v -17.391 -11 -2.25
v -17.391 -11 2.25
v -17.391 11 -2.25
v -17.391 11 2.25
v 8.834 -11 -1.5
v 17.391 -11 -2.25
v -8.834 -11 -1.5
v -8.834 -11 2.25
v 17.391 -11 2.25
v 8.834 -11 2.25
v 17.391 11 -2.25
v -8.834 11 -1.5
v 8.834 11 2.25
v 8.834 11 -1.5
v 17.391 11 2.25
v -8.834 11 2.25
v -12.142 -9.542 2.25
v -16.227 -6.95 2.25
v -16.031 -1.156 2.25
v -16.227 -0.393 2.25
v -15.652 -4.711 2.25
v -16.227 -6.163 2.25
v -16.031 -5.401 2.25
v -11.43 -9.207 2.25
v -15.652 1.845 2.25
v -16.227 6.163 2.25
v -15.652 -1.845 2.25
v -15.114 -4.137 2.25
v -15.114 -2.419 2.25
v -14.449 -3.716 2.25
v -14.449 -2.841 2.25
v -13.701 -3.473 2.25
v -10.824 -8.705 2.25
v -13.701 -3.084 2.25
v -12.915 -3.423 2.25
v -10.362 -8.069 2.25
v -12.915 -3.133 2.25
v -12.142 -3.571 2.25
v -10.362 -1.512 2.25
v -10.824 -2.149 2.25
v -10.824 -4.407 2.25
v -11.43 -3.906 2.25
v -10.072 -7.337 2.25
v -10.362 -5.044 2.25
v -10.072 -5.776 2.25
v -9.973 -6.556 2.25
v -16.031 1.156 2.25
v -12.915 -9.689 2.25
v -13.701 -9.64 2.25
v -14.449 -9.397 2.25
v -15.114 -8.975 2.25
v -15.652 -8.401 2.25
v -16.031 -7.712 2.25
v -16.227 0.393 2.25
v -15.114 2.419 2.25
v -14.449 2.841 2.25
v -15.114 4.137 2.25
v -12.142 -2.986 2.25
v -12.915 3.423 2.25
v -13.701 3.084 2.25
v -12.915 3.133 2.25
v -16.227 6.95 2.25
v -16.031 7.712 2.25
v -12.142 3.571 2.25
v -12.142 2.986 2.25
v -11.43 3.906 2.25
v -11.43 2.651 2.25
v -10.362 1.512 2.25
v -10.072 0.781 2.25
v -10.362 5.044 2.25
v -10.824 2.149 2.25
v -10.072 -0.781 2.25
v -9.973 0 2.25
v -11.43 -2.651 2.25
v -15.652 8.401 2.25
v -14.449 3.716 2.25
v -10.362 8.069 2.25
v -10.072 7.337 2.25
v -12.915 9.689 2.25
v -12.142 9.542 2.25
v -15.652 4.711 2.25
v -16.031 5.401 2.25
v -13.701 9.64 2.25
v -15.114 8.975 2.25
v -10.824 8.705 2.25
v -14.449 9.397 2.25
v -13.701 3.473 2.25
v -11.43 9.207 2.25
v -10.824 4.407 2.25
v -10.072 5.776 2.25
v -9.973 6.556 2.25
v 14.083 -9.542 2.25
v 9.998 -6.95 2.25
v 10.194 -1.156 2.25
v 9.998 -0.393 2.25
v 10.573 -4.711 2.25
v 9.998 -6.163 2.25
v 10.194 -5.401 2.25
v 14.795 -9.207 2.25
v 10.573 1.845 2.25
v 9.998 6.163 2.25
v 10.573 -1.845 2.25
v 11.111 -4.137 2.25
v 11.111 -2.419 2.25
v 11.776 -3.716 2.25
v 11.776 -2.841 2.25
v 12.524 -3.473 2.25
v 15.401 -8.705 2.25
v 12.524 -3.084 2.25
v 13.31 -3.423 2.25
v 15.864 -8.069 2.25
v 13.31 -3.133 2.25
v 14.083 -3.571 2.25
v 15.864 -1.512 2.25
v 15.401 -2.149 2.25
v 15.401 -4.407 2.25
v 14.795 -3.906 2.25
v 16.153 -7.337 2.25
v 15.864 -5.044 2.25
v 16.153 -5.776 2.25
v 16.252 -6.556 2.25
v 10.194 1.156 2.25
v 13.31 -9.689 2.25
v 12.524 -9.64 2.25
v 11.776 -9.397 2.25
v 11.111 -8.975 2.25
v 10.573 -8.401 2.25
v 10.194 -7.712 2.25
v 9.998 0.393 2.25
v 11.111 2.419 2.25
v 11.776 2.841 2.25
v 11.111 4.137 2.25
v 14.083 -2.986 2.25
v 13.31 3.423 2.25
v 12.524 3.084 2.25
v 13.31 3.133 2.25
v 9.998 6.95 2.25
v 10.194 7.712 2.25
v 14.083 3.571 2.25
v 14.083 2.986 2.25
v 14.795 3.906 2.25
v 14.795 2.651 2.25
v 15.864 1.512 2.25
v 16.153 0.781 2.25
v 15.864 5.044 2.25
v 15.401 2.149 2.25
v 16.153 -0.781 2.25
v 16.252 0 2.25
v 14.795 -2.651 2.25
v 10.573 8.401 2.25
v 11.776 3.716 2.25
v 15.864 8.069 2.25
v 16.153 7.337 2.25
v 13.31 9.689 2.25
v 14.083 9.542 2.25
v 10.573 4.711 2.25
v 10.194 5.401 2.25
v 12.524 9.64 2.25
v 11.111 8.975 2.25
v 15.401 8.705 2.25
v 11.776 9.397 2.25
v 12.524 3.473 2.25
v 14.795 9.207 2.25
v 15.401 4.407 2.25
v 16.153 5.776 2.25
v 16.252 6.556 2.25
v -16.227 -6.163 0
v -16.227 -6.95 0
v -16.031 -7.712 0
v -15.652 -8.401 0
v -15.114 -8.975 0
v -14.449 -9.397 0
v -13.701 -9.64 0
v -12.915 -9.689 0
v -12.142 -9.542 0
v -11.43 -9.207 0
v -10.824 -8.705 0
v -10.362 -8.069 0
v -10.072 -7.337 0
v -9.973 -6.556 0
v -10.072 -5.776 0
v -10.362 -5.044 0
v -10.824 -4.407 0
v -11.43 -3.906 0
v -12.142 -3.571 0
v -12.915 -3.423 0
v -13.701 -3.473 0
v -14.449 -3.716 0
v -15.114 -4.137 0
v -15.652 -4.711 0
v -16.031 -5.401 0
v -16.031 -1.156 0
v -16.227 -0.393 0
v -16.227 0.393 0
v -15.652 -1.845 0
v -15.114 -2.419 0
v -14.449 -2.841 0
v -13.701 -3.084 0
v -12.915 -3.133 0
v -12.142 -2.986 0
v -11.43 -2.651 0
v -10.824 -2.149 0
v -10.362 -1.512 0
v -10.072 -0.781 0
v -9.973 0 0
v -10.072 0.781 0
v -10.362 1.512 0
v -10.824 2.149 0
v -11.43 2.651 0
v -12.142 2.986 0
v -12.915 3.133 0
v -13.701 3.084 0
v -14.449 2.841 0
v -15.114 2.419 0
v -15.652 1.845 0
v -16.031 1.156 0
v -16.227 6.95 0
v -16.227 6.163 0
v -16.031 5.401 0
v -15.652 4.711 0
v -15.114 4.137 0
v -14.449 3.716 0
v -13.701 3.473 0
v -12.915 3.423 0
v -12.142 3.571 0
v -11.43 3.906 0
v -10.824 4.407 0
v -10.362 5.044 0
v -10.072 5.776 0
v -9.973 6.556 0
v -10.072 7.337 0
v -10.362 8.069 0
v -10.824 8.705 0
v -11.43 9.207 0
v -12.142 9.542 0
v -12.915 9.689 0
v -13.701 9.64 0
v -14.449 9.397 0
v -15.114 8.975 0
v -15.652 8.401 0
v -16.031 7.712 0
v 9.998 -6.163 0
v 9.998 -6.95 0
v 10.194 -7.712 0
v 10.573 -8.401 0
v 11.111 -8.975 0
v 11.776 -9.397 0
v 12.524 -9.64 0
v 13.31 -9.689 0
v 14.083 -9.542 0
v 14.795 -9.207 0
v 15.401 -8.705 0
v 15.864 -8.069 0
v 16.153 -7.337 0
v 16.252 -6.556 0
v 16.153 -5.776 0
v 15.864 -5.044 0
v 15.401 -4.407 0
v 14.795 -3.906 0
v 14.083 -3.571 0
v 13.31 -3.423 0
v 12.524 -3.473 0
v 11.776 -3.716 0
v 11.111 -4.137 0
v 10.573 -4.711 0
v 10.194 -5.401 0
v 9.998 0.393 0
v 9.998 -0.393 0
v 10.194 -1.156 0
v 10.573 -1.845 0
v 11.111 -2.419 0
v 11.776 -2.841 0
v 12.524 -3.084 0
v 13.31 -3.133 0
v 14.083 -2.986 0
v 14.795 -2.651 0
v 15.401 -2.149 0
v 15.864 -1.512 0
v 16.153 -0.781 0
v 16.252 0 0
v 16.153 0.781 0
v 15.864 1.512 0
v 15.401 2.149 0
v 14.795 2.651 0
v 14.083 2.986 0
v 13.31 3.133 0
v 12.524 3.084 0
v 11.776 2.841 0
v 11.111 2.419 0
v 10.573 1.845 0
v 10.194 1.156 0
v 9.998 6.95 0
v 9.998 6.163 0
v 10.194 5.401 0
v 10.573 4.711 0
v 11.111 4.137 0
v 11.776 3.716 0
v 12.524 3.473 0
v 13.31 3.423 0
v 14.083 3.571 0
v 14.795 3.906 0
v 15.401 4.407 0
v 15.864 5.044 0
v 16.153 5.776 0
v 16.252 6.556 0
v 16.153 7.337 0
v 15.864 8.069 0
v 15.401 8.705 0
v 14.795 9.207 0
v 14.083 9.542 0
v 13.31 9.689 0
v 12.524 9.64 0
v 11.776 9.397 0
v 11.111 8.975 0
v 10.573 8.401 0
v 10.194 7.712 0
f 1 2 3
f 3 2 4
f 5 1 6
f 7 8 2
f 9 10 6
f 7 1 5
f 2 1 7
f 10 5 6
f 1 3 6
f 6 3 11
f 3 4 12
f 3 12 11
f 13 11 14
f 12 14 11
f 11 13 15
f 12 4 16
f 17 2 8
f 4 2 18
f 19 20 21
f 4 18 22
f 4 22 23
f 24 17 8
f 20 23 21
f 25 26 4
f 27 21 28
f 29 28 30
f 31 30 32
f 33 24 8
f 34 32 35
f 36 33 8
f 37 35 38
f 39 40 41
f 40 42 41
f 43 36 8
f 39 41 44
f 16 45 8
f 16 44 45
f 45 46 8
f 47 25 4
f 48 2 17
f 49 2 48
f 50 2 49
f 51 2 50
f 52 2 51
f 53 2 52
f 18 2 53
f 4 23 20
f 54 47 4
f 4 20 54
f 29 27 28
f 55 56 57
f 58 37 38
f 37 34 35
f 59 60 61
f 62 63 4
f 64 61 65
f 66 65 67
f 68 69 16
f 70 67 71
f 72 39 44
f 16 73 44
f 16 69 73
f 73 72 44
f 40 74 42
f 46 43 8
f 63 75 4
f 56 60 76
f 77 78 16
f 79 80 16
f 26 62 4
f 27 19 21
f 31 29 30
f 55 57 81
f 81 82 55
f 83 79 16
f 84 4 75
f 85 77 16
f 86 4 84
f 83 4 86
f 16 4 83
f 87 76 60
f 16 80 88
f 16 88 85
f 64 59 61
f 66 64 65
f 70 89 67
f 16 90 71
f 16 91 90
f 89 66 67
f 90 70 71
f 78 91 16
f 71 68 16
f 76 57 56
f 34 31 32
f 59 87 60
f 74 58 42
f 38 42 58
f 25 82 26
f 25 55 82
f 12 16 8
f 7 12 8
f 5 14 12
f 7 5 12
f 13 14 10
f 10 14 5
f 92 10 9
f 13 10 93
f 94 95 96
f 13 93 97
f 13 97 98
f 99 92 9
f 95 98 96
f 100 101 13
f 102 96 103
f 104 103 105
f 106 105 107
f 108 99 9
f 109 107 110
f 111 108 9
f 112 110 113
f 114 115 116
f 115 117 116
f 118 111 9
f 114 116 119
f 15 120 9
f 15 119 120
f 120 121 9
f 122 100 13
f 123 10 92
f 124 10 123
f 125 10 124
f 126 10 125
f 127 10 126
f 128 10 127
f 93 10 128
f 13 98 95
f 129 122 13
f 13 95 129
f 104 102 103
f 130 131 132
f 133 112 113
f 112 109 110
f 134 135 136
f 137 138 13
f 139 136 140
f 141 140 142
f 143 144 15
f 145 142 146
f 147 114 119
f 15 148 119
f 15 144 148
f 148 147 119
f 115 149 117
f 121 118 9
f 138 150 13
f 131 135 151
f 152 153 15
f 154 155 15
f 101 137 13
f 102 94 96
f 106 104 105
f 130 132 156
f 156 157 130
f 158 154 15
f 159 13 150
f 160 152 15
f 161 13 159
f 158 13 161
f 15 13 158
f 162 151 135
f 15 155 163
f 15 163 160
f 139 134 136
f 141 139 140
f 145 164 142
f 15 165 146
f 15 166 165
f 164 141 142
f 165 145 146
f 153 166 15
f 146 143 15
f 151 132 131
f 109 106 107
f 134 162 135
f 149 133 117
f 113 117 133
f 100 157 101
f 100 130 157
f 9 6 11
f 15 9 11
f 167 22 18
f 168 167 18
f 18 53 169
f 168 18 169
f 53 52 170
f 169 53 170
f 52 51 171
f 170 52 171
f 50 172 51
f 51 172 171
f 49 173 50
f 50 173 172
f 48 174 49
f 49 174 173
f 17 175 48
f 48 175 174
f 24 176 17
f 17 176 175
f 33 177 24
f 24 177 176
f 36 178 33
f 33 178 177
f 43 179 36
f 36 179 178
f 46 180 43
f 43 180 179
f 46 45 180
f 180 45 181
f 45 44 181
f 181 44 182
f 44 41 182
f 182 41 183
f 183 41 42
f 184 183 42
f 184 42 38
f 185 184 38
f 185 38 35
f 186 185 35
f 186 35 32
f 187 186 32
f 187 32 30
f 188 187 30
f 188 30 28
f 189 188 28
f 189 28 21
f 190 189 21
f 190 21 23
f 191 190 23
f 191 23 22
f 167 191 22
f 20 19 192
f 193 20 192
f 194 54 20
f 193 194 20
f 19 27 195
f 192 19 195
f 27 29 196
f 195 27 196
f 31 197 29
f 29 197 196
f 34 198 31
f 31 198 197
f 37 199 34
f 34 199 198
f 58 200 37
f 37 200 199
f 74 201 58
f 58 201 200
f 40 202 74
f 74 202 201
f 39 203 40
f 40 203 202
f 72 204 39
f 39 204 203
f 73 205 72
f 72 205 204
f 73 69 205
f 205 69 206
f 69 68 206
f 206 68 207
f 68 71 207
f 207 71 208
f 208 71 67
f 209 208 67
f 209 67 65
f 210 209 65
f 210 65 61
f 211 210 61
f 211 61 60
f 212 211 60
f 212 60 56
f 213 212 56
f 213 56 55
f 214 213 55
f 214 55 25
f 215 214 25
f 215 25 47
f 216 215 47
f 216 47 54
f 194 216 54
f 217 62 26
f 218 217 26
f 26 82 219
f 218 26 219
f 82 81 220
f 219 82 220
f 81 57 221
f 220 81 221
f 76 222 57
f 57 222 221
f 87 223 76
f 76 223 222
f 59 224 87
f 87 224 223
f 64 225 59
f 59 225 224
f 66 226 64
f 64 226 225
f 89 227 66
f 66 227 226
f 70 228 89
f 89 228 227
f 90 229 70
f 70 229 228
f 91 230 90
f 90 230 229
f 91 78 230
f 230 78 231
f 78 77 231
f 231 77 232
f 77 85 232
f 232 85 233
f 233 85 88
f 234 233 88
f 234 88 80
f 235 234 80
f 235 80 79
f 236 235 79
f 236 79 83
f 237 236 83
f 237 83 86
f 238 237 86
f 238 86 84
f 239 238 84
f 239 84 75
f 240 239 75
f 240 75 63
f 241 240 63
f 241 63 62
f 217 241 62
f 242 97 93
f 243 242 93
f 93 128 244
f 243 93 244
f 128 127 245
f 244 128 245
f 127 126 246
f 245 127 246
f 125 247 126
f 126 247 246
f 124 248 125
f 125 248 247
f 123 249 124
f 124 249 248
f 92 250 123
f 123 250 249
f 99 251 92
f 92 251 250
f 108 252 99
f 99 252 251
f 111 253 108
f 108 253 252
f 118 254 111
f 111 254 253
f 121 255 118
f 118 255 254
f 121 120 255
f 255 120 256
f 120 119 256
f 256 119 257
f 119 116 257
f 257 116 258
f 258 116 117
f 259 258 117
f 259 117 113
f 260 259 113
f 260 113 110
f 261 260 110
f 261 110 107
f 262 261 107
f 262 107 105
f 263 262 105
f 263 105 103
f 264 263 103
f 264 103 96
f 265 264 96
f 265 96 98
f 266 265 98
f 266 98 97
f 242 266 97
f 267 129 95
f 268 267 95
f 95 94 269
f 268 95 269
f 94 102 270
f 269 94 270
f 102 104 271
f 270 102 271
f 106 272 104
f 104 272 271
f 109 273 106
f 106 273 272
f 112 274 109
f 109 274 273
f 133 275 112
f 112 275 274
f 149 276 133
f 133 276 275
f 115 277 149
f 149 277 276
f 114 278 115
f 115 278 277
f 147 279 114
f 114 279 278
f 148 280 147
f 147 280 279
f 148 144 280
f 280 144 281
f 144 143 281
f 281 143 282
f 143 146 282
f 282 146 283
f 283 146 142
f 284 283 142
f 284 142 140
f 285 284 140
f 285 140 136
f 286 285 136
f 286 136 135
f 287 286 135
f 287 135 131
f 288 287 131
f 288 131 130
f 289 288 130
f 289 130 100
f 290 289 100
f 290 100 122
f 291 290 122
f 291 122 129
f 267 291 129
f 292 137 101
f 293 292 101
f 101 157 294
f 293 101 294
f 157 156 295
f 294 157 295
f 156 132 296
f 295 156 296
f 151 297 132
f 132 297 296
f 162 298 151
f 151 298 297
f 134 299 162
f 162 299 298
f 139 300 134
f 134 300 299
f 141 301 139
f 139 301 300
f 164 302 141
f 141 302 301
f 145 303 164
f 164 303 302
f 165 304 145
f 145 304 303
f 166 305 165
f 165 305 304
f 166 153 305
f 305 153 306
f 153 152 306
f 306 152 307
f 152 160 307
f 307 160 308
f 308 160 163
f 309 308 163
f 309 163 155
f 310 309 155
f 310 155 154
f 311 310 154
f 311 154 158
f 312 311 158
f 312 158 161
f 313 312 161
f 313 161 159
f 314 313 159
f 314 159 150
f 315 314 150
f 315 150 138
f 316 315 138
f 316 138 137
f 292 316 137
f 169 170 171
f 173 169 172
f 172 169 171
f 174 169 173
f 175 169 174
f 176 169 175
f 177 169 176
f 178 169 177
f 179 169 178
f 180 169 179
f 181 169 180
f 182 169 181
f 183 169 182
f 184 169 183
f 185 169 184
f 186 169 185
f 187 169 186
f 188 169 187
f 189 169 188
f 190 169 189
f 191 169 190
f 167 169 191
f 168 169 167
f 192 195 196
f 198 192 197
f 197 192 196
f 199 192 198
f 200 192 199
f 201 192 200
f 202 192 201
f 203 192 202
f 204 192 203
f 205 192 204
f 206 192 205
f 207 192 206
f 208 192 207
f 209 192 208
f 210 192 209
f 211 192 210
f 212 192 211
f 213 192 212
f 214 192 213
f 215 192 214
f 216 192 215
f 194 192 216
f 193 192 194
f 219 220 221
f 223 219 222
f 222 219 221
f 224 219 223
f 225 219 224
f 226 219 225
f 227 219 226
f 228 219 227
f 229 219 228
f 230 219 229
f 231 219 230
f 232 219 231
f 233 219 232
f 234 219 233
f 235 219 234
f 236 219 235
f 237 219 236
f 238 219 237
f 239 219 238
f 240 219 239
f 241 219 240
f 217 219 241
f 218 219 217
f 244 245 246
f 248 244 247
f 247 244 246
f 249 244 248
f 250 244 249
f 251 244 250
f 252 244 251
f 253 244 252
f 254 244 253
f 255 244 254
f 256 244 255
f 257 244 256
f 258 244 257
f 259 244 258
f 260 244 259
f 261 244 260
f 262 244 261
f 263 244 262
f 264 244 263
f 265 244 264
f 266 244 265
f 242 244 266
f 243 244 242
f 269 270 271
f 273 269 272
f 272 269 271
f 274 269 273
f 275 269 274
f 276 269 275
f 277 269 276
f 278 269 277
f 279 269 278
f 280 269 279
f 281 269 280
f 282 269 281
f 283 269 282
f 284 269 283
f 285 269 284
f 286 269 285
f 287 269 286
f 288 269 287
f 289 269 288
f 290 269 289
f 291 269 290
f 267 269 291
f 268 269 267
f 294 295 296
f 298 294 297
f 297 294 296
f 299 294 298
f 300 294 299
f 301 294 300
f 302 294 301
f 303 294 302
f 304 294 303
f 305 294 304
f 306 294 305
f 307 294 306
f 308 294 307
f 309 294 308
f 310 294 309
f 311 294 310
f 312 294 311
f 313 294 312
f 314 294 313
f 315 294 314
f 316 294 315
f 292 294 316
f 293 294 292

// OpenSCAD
//To compensate for shrinkage
printer_multiplier = 1.13;

mm_per_in     = 25.4;
hole_diameter = 7/32 * mm_per_in;
hole_depth    = 3;
between_holes = 1.0;
slot_width    = 1.5;
C             = hole_diameter + between_holes;


//A magnetic module end needs two circle holes; enlarge the holes by
// the printer_multiplier factor.
module mag_end()
{
	translate([0, 0, 0])
		cylinder(d=hole_diameter * printer_multiplier, h=hole_depth, $fn=25);
	translate([0, -C, 0])
		cylinder(d=hole_diameter * printer_multiplier, h=hole_depth, $fn=25);
	translate([0, C, 0])
		cylinder(d=hole_diameter * printer_multiplier, h=hole_depth, $fn=25);
}

//Create holes for a double-ended magnetic module with length_in_C
// full holes in between the ends (not counting the ends themselves).
// Holes will be centered on the origin.
module double_mag_module(length_in_C)
{
	translate([-length_in_C/2*C, 0, 0])
		mag_end();
	translate([length_in_C/2*C, 0, 0])
		mag_end();
}

//A cCc x c3c module hole

difference()
{
	cube([C*5+2, 22, hole_depth*1.5], center=true);
	double_mag_module(4);
	translate([0,0,hole_depth*1.5-hole_depth-1])
		cube([C*3-2, 22, hole_depth+1], center=true);
	//mag_end();
}
